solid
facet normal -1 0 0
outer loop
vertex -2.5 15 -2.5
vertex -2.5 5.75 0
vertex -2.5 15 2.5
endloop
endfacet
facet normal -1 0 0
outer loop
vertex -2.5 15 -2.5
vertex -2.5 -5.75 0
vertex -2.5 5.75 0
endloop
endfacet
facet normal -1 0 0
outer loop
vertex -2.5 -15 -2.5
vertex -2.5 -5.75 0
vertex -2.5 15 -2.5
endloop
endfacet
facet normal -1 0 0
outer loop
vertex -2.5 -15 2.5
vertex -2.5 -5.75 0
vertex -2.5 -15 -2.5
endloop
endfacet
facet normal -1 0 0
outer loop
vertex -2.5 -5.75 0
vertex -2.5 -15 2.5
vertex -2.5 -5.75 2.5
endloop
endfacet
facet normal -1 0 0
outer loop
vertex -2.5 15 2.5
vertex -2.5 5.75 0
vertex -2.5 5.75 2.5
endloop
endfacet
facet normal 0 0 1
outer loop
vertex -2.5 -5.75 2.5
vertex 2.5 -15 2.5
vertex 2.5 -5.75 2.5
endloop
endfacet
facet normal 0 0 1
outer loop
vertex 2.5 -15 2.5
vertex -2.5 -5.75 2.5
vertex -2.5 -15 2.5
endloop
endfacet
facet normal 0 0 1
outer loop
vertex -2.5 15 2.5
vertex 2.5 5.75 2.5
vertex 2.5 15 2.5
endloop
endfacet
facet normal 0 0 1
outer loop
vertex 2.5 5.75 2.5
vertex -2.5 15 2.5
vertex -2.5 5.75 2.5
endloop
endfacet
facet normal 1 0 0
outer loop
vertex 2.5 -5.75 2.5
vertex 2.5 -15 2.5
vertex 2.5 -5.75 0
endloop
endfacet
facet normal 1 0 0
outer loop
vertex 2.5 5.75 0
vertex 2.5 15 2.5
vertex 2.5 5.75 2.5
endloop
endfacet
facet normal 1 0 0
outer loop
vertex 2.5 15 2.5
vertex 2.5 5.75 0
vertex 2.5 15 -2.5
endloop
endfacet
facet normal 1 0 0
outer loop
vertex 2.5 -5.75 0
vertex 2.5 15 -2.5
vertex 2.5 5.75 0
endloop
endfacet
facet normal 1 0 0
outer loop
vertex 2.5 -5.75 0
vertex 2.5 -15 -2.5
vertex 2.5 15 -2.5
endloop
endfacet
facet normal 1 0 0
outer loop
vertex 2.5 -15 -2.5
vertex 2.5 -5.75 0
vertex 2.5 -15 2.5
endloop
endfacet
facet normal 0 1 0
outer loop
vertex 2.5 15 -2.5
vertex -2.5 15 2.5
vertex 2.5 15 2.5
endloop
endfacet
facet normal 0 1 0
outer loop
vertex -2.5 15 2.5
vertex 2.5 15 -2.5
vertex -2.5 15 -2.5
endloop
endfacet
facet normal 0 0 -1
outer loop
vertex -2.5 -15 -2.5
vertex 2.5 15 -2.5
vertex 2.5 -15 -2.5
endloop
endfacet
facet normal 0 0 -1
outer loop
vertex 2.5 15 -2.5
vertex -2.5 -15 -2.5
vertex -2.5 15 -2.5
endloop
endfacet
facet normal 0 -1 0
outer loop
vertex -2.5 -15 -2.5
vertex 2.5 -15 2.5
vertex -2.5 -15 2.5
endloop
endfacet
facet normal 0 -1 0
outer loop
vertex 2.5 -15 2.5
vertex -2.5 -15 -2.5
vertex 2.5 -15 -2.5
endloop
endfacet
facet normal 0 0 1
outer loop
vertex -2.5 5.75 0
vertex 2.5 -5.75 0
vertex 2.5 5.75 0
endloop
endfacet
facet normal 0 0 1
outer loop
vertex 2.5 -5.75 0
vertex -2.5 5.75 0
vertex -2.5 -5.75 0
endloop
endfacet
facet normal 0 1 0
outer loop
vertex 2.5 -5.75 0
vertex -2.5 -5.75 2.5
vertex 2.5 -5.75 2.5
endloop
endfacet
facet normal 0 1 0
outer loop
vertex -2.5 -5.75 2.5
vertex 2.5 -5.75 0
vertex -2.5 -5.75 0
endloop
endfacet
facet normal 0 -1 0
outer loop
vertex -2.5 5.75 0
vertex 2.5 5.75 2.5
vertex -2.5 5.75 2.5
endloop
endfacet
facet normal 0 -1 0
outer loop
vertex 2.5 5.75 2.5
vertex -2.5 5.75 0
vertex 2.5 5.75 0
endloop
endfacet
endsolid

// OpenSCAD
difference() {
    // Bracket base
    scale([5,30,5]) cube(1,1,1,center=true);
    
    // Servo slot
    translate([0,0,1.25]) scale([5,11.5,2.5]) cube(1,1,1,center=true);
}
